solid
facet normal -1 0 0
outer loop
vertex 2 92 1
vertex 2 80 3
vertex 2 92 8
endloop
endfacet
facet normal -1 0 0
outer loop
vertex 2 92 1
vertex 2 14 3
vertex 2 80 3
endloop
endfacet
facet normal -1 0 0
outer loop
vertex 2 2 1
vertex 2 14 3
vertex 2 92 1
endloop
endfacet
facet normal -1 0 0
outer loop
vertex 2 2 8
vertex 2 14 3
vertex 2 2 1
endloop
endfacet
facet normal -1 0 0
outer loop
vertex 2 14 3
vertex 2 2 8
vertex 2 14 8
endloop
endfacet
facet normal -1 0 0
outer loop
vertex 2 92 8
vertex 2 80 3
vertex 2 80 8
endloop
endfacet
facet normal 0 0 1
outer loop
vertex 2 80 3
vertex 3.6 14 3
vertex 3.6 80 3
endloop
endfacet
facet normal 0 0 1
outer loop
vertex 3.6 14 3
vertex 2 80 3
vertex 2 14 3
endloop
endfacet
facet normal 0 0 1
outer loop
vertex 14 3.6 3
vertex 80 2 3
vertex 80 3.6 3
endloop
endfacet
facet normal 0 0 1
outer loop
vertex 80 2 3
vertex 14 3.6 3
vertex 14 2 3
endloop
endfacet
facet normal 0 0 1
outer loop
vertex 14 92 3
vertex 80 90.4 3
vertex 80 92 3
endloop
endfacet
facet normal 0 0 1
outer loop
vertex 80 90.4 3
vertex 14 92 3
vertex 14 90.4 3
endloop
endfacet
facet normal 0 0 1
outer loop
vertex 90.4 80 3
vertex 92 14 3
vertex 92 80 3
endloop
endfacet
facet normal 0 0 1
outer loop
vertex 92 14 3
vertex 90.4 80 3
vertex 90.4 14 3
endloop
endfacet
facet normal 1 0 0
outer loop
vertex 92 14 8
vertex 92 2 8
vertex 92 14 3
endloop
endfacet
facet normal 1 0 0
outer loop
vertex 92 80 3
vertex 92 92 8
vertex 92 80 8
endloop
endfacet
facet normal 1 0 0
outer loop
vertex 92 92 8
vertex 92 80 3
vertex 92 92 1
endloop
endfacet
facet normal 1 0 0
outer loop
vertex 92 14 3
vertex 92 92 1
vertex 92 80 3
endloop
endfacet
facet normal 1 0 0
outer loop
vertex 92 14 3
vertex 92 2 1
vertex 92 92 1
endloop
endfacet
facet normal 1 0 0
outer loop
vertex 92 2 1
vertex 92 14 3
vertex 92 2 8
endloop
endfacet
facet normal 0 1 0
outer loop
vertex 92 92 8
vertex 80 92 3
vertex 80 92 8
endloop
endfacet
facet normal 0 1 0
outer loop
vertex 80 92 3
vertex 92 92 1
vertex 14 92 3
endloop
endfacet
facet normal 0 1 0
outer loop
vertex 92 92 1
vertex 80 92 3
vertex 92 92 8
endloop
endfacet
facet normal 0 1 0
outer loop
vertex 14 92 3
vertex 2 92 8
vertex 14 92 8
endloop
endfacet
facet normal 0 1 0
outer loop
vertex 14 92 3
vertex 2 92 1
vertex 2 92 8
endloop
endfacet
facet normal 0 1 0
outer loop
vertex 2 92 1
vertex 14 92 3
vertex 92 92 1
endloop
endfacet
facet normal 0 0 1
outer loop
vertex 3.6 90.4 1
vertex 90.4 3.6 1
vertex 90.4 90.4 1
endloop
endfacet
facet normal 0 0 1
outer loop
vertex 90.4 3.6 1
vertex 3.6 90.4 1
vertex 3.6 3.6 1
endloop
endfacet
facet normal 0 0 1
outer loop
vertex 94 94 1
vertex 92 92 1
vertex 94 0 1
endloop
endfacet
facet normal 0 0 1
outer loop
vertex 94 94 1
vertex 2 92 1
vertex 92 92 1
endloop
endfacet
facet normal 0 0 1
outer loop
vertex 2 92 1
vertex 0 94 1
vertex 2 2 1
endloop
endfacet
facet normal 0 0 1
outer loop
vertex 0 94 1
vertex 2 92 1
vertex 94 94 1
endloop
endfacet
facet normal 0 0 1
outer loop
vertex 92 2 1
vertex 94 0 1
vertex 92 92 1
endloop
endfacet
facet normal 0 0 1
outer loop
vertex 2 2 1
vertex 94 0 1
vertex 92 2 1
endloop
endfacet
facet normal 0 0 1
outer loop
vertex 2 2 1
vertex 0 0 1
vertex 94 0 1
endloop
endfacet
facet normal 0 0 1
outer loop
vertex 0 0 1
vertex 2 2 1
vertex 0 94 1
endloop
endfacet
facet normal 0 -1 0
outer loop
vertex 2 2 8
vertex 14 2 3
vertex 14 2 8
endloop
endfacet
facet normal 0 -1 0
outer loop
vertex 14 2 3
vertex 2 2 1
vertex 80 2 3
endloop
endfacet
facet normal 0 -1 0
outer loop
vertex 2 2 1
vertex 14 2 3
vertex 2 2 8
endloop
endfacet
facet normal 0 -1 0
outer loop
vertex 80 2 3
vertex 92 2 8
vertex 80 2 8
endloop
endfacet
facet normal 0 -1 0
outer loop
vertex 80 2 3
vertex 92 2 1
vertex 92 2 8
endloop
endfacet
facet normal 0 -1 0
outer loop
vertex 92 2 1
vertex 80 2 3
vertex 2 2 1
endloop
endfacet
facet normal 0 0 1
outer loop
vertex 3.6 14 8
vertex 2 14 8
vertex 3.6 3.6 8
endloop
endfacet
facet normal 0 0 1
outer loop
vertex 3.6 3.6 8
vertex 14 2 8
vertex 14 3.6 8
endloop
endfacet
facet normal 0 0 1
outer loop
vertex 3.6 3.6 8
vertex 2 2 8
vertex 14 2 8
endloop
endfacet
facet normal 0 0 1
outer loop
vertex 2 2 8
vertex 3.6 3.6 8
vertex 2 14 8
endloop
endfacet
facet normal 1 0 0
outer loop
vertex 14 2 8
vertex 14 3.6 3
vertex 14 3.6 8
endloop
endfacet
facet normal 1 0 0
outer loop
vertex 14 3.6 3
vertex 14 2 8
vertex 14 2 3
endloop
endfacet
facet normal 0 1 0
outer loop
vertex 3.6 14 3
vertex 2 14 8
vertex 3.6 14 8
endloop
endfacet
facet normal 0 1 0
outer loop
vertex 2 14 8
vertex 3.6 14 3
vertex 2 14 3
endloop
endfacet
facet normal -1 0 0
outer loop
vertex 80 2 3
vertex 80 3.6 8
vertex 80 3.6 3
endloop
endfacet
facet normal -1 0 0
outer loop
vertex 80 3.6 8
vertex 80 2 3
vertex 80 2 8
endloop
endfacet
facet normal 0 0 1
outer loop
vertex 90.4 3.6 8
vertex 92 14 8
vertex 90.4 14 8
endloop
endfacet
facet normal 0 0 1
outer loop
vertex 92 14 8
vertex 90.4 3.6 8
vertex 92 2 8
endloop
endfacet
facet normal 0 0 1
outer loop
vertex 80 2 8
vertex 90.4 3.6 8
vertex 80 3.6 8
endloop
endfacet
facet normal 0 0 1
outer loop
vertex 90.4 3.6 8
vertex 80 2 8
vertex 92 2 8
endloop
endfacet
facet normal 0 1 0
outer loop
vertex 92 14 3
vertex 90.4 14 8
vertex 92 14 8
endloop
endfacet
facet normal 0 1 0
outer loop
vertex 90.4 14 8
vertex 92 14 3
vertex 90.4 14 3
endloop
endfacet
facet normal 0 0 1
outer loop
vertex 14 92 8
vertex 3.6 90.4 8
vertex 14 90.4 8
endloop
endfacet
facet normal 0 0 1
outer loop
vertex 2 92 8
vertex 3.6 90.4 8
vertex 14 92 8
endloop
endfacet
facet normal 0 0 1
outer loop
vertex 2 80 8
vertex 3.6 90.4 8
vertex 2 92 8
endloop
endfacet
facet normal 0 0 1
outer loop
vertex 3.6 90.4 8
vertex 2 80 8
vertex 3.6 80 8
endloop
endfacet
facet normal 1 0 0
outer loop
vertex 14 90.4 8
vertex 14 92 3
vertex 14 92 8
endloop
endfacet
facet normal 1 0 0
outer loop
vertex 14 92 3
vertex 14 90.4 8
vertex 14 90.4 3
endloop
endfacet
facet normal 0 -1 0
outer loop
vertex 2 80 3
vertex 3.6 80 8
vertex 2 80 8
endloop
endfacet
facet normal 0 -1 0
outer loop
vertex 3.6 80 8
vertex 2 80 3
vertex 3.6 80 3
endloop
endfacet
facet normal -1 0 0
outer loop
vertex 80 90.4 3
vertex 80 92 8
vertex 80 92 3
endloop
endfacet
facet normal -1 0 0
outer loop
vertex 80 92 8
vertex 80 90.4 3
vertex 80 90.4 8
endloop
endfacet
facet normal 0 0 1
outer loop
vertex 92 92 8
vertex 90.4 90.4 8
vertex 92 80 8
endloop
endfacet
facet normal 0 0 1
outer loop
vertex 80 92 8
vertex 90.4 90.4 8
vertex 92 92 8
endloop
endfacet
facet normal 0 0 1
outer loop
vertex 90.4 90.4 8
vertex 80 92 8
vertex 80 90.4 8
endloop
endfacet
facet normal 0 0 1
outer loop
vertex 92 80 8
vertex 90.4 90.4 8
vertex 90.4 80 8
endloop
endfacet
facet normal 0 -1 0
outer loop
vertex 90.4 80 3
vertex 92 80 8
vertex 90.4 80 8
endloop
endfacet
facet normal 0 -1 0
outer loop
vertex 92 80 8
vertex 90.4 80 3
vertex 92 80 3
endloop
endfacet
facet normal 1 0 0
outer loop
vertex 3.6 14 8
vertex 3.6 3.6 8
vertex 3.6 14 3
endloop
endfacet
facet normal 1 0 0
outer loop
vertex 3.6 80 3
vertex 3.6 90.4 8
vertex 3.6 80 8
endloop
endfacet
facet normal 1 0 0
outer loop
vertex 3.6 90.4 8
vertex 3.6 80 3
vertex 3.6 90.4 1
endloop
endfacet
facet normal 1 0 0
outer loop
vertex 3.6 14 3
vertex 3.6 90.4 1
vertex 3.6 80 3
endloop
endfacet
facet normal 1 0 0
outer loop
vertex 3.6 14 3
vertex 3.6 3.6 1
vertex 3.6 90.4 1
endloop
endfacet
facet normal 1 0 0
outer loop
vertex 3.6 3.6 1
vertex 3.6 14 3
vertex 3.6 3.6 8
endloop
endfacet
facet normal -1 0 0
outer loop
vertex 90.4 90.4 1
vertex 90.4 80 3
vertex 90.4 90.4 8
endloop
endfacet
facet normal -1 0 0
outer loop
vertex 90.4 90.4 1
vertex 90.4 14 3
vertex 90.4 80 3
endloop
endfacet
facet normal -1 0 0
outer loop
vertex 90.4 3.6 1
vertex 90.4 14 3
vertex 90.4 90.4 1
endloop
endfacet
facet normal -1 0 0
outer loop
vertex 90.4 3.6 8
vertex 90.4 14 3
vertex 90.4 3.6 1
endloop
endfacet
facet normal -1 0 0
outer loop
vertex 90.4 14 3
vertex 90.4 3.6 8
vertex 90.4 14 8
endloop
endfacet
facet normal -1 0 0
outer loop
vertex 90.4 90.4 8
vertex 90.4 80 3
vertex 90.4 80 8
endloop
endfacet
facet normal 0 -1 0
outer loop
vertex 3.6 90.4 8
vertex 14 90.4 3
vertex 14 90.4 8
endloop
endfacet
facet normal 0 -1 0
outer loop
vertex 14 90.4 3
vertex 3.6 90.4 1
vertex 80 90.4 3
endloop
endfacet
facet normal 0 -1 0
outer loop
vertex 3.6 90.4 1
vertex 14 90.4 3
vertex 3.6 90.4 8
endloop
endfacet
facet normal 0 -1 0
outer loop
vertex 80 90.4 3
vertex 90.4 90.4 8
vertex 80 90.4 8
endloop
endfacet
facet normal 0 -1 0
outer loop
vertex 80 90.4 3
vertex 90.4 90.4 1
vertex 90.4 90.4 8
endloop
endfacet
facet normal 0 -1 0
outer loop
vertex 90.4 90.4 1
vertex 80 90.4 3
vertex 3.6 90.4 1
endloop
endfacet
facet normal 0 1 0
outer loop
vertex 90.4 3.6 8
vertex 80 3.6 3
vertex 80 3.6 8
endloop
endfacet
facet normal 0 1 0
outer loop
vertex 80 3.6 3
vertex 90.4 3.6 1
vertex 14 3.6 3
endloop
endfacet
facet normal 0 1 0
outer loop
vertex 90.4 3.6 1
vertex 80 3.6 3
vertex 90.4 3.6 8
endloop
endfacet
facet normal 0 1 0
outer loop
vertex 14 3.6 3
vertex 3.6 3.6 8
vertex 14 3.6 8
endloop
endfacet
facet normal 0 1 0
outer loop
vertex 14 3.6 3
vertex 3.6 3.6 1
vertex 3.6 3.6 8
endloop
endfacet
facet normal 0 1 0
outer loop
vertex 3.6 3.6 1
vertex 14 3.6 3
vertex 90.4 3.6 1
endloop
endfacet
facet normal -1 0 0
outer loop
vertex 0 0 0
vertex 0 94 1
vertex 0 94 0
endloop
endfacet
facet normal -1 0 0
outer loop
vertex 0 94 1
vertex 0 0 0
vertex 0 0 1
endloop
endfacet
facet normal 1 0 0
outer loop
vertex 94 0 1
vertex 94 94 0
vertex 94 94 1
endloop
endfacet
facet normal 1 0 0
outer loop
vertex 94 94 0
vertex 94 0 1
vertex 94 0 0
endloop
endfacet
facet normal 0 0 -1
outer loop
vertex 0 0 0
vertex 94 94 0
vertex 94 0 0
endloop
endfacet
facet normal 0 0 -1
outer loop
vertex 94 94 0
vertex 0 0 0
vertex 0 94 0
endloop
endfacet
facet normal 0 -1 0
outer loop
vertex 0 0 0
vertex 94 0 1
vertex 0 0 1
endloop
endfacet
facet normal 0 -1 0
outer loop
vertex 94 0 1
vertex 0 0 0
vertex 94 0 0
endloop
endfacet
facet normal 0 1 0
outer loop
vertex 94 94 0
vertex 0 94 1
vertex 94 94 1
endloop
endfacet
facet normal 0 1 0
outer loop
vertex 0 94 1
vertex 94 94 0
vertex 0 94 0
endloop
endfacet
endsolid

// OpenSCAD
w1 = 90;
w2 = 94;

thickness = 1.6;

cube([w2, w2, 1]);

translate([2, 2, 1]) 
difference() {
    union() {
        cube([w1, w1, 2]);
        cube([12, 12, 7]);
        translate([w1-12, 0, 0]) cube([12, 12, 7]);
        translate([0, w1-12, 0]) cube([12, 12, 7]);
        translate([w1-12, w1-12, 0]) cube([12, 12, 7]);
    }
    translate([thickness,thickness,0])
        cube([w1-thickness*2, w1-thickness*2, 20]);
}
